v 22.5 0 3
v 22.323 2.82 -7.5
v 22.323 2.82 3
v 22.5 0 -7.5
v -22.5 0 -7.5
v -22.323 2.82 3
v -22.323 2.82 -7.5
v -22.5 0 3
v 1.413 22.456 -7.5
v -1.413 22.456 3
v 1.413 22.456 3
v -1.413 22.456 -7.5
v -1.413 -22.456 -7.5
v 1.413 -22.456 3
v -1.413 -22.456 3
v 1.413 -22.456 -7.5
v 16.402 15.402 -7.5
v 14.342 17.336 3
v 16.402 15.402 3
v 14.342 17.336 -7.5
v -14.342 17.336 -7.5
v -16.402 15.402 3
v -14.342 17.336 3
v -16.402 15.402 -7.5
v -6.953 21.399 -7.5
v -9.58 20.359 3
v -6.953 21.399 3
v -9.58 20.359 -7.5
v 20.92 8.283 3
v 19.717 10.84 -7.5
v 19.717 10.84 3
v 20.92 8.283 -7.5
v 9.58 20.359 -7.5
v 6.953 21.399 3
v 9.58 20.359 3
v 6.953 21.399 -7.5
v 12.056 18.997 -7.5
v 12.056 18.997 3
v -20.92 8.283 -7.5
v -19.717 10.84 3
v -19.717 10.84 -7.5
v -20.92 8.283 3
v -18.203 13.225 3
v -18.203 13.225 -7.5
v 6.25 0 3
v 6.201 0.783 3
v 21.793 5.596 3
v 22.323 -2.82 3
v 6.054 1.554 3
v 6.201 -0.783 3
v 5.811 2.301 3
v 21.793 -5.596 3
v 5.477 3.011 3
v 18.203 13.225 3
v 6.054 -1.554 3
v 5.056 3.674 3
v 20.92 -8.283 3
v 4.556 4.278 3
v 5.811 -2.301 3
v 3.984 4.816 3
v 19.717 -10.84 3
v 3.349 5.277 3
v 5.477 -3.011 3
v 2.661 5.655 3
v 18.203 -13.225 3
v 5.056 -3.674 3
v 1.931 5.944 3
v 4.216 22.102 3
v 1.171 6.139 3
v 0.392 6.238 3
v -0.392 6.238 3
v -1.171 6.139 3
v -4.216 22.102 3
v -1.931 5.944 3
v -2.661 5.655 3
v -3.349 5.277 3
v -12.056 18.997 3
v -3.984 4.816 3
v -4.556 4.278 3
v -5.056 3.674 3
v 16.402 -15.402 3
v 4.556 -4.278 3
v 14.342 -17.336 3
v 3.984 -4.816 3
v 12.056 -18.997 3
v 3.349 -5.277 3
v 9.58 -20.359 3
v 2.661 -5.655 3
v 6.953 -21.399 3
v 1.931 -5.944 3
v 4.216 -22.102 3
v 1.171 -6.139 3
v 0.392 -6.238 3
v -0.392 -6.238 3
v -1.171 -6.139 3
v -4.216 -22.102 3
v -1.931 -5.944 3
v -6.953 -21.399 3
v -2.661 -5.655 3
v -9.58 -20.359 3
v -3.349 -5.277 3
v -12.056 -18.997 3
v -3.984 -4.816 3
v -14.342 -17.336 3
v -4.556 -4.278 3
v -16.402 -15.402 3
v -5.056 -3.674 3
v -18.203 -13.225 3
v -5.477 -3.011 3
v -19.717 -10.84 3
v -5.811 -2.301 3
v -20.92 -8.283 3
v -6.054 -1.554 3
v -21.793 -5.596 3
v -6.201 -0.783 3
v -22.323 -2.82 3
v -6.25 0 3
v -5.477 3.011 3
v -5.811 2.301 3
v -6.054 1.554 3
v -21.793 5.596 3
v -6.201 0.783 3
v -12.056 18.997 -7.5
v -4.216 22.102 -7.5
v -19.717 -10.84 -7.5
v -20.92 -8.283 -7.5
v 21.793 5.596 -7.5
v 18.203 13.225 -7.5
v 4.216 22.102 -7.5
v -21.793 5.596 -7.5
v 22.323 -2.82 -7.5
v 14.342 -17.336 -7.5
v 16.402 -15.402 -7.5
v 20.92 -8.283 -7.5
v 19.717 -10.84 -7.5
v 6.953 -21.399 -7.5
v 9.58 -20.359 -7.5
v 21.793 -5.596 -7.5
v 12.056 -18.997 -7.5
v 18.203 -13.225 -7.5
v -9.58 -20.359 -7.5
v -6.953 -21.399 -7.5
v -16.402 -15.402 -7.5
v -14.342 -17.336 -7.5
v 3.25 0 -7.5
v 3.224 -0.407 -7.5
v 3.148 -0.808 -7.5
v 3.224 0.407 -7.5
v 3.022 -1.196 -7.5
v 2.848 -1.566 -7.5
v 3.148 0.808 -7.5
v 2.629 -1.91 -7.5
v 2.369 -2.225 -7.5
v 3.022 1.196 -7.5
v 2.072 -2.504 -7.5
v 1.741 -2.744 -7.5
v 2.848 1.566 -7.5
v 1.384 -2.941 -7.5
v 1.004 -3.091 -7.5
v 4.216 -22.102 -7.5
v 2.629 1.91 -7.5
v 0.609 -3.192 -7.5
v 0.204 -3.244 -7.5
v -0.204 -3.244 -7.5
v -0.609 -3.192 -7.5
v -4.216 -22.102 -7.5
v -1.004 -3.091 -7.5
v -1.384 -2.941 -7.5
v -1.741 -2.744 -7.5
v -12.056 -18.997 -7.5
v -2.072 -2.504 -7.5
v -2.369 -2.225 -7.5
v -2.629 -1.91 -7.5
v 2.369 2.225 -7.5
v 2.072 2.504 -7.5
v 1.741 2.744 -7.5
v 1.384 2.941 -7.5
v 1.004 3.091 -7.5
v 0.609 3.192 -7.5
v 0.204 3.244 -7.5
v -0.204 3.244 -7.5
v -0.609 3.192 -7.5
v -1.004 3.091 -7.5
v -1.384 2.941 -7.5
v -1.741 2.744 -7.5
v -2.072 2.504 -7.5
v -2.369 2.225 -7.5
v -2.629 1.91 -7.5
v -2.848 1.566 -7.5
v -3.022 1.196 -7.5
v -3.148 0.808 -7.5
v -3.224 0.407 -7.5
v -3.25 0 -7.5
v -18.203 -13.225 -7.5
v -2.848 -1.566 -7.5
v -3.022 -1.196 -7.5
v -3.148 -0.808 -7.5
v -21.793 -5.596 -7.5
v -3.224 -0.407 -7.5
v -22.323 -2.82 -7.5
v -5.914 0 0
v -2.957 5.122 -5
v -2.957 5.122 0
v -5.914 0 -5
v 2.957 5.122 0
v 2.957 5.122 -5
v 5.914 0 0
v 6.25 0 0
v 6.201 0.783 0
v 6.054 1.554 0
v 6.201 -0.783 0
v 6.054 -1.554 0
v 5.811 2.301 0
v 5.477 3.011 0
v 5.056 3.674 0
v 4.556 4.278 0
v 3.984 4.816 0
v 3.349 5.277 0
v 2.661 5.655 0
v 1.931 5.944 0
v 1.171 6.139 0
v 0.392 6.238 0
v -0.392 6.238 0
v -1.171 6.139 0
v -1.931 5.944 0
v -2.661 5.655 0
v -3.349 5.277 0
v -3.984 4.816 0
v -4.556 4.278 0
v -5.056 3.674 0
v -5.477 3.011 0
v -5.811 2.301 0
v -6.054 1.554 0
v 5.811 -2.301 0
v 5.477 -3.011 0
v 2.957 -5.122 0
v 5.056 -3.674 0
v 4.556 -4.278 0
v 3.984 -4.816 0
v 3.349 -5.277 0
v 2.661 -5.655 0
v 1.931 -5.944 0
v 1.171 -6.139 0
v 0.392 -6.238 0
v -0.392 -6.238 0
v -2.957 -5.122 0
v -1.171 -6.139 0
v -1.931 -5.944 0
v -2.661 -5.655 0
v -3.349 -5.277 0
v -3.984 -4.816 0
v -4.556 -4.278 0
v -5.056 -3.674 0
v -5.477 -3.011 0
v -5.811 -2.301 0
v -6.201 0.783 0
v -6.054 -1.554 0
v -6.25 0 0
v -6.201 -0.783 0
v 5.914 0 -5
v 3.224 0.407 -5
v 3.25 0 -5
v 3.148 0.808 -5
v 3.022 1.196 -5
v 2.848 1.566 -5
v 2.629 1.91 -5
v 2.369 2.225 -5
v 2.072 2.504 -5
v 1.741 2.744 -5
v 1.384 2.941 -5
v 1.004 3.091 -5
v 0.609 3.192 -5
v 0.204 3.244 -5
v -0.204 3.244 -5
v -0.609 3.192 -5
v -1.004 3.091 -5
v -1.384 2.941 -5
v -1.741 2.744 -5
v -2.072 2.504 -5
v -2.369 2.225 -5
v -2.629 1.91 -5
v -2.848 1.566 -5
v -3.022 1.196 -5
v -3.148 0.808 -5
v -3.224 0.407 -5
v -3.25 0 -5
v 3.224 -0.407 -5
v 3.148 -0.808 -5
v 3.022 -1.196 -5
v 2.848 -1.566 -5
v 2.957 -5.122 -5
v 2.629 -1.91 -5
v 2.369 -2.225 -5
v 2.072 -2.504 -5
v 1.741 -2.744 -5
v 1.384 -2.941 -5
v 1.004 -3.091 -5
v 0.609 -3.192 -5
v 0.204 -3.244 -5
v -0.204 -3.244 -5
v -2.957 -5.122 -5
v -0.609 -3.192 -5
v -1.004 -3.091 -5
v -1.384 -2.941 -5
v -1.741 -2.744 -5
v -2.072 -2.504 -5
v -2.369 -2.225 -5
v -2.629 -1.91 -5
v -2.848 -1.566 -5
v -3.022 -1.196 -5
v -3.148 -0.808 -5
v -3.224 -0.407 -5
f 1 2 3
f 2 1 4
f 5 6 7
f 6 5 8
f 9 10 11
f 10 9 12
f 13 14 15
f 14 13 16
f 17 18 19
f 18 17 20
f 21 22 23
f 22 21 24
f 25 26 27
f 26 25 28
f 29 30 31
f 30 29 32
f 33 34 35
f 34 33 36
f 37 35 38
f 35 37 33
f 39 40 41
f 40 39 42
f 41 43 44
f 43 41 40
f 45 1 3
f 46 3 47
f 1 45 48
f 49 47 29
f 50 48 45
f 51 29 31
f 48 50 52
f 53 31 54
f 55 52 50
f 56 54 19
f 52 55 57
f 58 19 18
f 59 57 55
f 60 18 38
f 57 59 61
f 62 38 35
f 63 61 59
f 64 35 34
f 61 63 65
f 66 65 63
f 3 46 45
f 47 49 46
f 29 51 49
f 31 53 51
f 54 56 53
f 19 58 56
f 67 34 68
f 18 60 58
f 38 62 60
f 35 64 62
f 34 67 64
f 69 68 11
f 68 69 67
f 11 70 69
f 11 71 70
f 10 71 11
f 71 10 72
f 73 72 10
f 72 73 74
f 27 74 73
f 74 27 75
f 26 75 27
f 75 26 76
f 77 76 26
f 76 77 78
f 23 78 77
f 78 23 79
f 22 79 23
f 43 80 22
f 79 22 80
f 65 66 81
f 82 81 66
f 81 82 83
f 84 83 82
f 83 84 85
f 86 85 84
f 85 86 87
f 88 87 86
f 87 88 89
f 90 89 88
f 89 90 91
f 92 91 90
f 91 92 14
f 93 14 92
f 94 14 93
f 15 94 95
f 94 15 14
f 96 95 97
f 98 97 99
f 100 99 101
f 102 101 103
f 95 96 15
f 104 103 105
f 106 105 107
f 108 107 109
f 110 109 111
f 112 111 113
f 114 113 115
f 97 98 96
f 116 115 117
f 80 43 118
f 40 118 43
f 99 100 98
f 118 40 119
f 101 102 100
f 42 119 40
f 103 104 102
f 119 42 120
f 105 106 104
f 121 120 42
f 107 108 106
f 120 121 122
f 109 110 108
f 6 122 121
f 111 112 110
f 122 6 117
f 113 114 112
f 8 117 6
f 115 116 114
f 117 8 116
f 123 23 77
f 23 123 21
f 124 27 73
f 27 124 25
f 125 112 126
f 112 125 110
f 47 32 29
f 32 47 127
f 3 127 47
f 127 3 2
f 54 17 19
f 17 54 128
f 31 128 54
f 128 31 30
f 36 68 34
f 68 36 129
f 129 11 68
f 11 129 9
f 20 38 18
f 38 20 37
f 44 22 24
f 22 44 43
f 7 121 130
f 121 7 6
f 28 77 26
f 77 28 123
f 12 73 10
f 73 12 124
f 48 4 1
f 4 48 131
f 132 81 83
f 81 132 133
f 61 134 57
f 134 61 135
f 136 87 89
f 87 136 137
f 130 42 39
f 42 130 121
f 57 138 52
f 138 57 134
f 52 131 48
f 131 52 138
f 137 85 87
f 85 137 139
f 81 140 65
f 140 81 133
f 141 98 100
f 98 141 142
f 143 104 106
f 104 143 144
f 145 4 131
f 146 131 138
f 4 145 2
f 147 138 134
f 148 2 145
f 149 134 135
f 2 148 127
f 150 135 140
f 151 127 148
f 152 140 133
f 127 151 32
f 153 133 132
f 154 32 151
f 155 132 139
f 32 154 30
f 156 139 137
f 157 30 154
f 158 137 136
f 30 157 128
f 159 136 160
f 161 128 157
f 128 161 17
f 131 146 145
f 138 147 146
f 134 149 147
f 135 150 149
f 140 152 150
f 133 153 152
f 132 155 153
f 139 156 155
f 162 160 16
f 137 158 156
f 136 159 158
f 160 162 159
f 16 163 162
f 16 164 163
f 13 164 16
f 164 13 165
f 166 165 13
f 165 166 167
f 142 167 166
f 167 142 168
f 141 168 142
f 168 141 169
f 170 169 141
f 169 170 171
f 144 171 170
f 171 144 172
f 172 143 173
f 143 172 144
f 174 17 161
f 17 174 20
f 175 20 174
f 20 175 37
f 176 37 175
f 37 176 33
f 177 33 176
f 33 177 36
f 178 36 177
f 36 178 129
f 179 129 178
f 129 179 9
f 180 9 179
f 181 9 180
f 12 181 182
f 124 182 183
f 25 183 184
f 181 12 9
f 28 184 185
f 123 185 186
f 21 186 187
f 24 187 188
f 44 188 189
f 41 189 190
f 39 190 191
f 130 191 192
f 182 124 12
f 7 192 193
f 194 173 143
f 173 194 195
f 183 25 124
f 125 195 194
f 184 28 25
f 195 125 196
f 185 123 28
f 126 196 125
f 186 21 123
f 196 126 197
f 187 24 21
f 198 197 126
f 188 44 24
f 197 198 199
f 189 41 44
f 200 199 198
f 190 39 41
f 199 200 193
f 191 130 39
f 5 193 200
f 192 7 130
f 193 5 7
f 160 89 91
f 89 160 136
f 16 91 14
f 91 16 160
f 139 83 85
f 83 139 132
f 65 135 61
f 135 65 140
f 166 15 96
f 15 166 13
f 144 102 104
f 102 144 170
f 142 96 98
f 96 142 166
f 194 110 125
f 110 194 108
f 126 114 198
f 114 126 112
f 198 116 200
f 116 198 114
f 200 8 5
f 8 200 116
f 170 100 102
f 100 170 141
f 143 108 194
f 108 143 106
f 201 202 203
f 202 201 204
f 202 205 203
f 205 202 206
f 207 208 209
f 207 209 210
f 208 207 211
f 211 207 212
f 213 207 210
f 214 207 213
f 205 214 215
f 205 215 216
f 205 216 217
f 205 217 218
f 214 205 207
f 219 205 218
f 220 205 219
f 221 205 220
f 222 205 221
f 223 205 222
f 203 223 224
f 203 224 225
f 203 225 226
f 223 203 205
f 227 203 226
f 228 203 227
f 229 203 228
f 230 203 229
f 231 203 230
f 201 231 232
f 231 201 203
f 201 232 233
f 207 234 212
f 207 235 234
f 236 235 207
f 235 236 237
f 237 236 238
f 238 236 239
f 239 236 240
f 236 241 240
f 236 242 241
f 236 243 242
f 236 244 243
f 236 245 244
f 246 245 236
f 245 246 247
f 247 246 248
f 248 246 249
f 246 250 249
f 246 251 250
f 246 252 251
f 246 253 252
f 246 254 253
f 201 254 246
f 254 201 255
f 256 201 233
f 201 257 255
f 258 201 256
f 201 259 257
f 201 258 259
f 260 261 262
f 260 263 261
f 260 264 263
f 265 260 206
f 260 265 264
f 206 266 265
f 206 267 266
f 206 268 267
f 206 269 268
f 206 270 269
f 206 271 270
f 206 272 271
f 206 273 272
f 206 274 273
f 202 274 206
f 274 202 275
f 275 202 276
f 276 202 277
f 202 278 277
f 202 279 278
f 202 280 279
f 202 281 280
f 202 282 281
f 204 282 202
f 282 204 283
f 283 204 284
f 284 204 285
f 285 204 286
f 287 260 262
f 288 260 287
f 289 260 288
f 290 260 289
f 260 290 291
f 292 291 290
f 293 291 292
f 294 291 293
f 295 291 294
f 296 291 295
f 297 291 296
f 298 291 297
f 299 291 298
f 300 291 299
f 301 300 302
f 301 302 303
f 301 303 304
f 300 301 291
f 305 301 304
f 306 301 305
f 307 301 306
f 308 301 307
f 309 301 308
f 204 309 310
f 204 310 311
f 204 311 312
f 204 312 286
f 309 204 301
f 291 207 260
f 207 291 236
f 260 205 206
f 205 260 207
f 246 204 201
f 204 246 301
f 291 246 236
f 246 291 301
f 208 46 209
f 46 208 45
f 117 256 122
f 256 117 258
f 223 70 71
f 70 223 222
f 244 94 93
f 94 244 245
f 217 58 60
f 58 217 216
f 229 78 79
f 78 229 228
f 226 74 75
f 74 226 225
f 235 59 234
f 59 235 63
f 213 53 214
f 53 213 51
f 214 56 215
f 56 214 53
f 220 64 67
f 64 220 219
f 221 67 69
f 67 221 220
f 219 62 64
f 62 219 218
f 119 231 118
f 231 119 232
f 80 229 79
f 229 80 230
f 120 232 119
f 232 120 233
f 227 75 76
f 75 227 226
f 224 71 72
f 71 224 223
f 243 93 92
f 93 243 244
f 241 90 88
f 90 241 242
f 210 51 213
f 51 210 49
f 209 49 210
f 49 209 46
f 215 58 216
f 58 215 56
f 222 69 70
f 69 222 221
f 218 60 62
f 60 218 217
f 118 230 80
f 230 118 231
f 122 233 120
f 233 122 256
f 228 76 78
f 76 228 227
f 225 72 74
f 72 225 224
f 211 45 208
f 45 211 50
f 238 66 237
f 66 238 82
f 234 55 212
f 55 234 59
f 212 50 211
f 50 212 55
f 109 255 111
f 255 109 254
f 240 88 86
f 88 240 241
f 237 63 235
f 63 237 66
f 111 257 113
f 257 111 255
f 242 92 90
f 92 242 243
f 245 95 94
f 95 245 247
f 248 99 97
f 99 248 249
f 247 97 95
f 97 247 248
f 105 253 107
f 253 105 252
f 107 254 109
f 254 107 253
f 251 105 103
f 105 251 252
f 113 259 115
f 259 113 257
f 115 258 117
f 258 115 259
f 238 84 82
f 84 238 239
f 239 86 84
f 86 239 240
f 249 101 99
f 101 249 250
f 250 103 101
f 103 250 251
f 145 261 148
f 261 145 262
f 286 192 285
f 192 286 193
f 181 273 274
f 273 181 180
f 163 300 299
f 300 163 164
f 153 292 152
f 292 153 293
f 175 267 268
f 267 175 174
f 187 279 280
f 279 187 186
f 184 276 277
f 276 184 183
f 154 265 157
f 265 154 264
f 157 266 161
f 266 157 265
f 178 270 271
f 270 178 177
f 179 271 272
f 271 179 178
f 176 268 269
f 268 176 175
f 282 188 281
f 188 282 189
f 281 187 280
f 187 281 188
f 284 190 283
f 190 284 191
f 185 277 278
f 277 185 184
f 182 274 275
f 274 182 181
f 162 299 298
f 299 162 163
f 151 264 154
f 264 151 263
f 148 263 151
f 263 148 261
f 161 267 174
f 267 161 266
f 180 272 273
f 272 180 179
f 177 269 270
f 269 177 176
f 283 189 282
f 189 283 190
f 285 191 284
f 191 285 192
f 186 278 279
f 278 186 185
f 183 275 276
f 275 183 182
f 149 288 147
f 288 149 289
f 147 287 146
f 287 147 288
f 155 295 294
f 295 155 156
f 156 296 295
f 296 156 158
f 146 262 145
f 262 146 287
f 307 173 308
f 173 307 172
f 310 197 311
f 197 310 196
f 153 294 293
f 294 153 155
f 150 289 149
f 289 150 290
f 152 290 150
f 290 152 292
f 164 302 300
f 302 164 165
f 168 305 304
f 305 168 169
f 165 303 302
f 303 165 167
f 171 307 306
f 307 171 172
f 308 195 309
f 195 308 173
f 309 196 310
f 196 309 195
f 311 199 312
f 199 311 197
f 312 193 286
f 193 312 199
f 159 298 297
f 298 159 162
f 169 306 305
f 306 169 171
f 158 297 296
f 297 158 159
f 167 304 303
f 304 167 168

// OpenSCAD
$fn = 50;

difference() {
	union() {
		translate(v = [0, 0, -7.5]) {
			cylinder(h = 10.5, r = 22.5);
		}
		#translate(v = [0, 0, -9.0]) {
			cylinder(h = 9, r = 2.875);
		}
	}
	union() {
		translate(v = [0, 0, 0]) {
			rotate(a = [0, 0, 0]) {
				difference() {
					union() {
						translate(v = [0, 0, -5]) {
							linear_extrude(height = 5) {
								polygon(points = [[5.914249999999999, 0.0], [2.957125, 5.1218907443321156], [-2.9571249999999982, 5.1218907443321156], [-5.914249999999999, 7.242867331857232e-16], [-2.9571250000000022, -5.121890744332115], [2.9571249999999956, -5.121890744332118]]);
							}
						}
					}
					union();
				}
			}
		}
		#cylinder(h = 3, r = 6.25);
		#translate(v = [0, 0, -100.0]) {
			cylinder(h = 200, r = 3.25);
		}
	}
}
